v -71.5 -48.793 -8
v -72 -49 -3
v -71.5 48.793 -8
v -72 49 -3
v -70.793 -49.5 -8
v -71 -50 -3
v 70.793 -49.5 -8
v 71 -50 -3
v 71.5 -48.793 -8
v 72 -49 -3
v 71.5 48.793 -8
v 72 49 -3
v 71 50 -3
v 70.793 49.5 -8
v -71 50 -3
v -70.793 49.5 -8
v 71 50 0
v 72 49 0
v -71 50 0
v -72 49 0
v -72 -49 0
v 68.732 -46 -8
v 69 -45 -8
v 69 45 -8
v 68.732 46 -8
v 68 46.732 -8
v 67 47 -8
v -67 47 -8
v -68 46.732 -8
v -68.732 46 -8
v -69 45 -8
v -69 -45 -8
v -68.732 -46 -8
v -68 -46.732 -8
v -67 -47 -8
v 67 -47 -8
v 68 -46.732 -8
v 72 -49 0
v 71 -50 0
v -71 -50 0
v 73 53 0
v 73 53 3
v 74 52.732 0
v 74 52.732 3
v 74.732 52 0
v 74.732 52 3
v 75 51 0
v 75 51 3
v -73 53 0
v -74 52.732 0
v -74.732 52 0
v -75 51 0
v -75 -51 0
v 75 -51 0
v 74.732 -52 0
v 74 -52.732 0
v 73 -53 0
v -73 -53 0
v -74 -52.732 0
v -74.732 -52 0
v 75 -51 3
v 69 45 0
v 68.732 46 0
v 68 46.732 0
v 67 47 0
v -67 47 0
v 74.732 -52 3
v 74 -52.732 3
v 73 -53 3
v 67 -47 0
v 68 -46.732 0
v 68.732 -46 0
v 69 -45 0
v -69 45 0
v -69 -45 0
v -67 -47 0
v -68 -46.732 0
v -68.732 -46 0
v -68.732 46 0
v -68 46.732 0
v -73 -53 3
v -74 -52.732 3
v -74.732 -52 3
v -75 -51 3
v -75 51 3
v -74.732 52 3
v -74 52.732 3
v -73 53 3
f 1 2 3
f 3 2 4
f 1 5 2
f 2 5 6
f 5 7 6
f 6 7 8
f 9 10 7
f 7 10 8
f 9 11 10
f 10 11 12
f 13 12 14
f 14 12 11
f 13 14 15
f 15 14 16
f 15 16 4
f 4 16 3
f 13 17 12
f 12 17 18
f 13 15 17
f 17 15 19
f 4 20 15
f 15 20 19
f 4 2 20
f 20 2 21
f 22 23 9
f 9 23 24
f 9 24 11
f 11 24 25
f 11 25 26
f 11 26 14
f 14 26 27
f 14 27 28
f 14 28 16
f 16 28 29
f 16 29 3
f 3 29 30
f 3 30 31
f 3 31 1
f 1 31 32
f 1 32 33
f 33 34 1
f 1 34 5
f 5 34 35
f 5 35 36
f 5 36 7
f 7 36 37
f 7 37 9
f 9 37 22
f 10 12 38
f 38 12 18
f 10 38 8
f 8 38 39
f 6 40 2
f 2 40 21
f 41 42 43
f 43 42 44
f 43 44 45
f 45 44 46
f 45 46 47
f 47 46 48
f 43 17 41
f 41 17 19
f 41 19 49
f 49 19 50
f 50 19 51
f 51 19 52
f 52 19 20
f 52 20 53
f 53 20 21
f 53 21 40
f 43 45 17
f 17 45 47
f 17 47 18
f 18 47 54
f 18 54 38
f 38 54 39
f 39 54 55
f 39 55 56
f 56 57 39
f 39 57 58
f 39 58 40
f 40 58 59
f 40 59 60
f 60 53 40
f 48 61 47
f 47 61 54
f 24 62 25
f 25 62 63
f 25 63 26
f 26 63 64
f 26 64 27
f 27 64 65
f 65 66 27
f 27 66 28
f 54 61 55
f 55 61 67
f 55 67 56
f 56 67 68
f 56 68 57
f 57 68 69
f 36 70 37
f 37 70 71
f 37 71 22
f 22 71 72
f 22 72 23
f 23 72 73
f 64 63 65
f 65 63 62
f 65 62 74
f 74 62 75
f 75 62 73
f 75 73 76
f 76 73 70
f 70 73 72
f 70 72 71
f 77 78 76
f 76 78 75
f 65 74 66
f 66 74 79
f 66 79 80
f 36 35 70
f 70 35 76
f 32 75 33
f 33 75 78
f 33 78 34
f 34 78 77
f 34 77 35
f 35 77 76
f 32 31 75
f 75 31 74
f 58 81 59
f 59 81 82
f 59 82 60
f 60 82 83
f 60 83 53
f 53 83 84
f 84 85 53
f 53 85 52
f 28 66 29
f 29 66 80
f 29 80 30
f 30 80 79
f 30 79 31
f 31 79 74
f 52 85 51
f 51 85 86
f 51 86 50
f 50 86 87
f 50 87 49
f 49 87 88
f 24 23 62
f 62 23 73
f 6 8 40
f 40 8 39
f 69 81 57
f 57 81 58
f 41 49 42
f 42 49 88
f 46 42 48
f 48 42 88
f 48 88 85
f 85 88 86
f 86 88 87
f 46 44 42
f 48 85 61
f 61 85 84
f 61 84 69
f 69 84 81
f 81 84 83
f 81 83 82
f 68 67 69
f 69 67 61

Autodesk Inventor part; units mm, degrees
ref_plane "YZ Plane" through (0, 0, 0) normal (1, 0, 0) x (0, 1, 0)
ref_plane "XZ Plane" through (0, 0, 0) normal (0, 1, 0) x (-1, 0, 0)
ref_plane "XY Plane" through (0, 0, 0) normal (0, 0, 1) x (1, 0, 0)
sketch "Sketch1" plane through (0, 0, 0) normal (0, 0, 1) x (1, 0, 0)
  line L0 (-75, -53) -> (75, -53)
  line L1 (75, -53) -> (75, 53)
  line L2 (75, 53) -> (-75, 53)
  line L3 (-75, 53) -> (-75, -53)
  line L4 (-75, -53) -> (75, 53) construction
  line L5 (75, -53) -> (-75, 53) construction
  line L6 (-72, 50) -> (72, 50)
  line L7 (72, 50) -> (72, -50)
  line L8 (72, -50) -> (-72, -50)
  line L9 (-72, -50) -> (-72, 50)
  line L10 (69, 47) -> (-69, 47)
  line L11 (-69, 47) -> (-69, -47)
  line L12 (-69, -47) -> (69, -47)
  line L13 (69, -47) -> (69, 47)
  point P0 (0, 0)
  dimension "d0" = 150
  dimension "d1" = 106
  dimension "d4" = 3
  dimension "d5" = 3
extrude "Extrusion1" add sketch "Sketch1" along normal blind 3 contours L3 L2 L1 L0 | L6 L7 L8 L9 | L13 L12 L11 L10
extrude "Extrusion2" add sketch "Sketch1" against normal blind 8 contours L6 L7 L8 L9
fillet "Fillet1" radius 2 8 edges at (-75, 53, 1.5) (-69, 47, -4) (-75, -53, 1.5) (-69, -47, -4) (69, -47, -4) (75, -53, 1.5) (69, 47, -4) (75, 53, 1.5)
chamfer "Chamfer1" distance 1 angle 45 4 edges at (-72, -50, -4) (72, -50, -4) (72, 50, -4) (-72, 50, -4)
chamfer "Chamfer2" distance 0.5 distance2 5 8 edges at (72, 0, -8) (0, -50, -8) (-72, 0, -8) (0, 50, -8) (71.5, -49.5, -8) (-71.5, -49.5, -8) (-71.5, 49.5, -8) (71.5, 49.5, -8) measured on face at (22.3333, 49, -8)
properties part number "ImageToStl.com_82d01a97-71ed-4804-91bd-9032aadffd37"
